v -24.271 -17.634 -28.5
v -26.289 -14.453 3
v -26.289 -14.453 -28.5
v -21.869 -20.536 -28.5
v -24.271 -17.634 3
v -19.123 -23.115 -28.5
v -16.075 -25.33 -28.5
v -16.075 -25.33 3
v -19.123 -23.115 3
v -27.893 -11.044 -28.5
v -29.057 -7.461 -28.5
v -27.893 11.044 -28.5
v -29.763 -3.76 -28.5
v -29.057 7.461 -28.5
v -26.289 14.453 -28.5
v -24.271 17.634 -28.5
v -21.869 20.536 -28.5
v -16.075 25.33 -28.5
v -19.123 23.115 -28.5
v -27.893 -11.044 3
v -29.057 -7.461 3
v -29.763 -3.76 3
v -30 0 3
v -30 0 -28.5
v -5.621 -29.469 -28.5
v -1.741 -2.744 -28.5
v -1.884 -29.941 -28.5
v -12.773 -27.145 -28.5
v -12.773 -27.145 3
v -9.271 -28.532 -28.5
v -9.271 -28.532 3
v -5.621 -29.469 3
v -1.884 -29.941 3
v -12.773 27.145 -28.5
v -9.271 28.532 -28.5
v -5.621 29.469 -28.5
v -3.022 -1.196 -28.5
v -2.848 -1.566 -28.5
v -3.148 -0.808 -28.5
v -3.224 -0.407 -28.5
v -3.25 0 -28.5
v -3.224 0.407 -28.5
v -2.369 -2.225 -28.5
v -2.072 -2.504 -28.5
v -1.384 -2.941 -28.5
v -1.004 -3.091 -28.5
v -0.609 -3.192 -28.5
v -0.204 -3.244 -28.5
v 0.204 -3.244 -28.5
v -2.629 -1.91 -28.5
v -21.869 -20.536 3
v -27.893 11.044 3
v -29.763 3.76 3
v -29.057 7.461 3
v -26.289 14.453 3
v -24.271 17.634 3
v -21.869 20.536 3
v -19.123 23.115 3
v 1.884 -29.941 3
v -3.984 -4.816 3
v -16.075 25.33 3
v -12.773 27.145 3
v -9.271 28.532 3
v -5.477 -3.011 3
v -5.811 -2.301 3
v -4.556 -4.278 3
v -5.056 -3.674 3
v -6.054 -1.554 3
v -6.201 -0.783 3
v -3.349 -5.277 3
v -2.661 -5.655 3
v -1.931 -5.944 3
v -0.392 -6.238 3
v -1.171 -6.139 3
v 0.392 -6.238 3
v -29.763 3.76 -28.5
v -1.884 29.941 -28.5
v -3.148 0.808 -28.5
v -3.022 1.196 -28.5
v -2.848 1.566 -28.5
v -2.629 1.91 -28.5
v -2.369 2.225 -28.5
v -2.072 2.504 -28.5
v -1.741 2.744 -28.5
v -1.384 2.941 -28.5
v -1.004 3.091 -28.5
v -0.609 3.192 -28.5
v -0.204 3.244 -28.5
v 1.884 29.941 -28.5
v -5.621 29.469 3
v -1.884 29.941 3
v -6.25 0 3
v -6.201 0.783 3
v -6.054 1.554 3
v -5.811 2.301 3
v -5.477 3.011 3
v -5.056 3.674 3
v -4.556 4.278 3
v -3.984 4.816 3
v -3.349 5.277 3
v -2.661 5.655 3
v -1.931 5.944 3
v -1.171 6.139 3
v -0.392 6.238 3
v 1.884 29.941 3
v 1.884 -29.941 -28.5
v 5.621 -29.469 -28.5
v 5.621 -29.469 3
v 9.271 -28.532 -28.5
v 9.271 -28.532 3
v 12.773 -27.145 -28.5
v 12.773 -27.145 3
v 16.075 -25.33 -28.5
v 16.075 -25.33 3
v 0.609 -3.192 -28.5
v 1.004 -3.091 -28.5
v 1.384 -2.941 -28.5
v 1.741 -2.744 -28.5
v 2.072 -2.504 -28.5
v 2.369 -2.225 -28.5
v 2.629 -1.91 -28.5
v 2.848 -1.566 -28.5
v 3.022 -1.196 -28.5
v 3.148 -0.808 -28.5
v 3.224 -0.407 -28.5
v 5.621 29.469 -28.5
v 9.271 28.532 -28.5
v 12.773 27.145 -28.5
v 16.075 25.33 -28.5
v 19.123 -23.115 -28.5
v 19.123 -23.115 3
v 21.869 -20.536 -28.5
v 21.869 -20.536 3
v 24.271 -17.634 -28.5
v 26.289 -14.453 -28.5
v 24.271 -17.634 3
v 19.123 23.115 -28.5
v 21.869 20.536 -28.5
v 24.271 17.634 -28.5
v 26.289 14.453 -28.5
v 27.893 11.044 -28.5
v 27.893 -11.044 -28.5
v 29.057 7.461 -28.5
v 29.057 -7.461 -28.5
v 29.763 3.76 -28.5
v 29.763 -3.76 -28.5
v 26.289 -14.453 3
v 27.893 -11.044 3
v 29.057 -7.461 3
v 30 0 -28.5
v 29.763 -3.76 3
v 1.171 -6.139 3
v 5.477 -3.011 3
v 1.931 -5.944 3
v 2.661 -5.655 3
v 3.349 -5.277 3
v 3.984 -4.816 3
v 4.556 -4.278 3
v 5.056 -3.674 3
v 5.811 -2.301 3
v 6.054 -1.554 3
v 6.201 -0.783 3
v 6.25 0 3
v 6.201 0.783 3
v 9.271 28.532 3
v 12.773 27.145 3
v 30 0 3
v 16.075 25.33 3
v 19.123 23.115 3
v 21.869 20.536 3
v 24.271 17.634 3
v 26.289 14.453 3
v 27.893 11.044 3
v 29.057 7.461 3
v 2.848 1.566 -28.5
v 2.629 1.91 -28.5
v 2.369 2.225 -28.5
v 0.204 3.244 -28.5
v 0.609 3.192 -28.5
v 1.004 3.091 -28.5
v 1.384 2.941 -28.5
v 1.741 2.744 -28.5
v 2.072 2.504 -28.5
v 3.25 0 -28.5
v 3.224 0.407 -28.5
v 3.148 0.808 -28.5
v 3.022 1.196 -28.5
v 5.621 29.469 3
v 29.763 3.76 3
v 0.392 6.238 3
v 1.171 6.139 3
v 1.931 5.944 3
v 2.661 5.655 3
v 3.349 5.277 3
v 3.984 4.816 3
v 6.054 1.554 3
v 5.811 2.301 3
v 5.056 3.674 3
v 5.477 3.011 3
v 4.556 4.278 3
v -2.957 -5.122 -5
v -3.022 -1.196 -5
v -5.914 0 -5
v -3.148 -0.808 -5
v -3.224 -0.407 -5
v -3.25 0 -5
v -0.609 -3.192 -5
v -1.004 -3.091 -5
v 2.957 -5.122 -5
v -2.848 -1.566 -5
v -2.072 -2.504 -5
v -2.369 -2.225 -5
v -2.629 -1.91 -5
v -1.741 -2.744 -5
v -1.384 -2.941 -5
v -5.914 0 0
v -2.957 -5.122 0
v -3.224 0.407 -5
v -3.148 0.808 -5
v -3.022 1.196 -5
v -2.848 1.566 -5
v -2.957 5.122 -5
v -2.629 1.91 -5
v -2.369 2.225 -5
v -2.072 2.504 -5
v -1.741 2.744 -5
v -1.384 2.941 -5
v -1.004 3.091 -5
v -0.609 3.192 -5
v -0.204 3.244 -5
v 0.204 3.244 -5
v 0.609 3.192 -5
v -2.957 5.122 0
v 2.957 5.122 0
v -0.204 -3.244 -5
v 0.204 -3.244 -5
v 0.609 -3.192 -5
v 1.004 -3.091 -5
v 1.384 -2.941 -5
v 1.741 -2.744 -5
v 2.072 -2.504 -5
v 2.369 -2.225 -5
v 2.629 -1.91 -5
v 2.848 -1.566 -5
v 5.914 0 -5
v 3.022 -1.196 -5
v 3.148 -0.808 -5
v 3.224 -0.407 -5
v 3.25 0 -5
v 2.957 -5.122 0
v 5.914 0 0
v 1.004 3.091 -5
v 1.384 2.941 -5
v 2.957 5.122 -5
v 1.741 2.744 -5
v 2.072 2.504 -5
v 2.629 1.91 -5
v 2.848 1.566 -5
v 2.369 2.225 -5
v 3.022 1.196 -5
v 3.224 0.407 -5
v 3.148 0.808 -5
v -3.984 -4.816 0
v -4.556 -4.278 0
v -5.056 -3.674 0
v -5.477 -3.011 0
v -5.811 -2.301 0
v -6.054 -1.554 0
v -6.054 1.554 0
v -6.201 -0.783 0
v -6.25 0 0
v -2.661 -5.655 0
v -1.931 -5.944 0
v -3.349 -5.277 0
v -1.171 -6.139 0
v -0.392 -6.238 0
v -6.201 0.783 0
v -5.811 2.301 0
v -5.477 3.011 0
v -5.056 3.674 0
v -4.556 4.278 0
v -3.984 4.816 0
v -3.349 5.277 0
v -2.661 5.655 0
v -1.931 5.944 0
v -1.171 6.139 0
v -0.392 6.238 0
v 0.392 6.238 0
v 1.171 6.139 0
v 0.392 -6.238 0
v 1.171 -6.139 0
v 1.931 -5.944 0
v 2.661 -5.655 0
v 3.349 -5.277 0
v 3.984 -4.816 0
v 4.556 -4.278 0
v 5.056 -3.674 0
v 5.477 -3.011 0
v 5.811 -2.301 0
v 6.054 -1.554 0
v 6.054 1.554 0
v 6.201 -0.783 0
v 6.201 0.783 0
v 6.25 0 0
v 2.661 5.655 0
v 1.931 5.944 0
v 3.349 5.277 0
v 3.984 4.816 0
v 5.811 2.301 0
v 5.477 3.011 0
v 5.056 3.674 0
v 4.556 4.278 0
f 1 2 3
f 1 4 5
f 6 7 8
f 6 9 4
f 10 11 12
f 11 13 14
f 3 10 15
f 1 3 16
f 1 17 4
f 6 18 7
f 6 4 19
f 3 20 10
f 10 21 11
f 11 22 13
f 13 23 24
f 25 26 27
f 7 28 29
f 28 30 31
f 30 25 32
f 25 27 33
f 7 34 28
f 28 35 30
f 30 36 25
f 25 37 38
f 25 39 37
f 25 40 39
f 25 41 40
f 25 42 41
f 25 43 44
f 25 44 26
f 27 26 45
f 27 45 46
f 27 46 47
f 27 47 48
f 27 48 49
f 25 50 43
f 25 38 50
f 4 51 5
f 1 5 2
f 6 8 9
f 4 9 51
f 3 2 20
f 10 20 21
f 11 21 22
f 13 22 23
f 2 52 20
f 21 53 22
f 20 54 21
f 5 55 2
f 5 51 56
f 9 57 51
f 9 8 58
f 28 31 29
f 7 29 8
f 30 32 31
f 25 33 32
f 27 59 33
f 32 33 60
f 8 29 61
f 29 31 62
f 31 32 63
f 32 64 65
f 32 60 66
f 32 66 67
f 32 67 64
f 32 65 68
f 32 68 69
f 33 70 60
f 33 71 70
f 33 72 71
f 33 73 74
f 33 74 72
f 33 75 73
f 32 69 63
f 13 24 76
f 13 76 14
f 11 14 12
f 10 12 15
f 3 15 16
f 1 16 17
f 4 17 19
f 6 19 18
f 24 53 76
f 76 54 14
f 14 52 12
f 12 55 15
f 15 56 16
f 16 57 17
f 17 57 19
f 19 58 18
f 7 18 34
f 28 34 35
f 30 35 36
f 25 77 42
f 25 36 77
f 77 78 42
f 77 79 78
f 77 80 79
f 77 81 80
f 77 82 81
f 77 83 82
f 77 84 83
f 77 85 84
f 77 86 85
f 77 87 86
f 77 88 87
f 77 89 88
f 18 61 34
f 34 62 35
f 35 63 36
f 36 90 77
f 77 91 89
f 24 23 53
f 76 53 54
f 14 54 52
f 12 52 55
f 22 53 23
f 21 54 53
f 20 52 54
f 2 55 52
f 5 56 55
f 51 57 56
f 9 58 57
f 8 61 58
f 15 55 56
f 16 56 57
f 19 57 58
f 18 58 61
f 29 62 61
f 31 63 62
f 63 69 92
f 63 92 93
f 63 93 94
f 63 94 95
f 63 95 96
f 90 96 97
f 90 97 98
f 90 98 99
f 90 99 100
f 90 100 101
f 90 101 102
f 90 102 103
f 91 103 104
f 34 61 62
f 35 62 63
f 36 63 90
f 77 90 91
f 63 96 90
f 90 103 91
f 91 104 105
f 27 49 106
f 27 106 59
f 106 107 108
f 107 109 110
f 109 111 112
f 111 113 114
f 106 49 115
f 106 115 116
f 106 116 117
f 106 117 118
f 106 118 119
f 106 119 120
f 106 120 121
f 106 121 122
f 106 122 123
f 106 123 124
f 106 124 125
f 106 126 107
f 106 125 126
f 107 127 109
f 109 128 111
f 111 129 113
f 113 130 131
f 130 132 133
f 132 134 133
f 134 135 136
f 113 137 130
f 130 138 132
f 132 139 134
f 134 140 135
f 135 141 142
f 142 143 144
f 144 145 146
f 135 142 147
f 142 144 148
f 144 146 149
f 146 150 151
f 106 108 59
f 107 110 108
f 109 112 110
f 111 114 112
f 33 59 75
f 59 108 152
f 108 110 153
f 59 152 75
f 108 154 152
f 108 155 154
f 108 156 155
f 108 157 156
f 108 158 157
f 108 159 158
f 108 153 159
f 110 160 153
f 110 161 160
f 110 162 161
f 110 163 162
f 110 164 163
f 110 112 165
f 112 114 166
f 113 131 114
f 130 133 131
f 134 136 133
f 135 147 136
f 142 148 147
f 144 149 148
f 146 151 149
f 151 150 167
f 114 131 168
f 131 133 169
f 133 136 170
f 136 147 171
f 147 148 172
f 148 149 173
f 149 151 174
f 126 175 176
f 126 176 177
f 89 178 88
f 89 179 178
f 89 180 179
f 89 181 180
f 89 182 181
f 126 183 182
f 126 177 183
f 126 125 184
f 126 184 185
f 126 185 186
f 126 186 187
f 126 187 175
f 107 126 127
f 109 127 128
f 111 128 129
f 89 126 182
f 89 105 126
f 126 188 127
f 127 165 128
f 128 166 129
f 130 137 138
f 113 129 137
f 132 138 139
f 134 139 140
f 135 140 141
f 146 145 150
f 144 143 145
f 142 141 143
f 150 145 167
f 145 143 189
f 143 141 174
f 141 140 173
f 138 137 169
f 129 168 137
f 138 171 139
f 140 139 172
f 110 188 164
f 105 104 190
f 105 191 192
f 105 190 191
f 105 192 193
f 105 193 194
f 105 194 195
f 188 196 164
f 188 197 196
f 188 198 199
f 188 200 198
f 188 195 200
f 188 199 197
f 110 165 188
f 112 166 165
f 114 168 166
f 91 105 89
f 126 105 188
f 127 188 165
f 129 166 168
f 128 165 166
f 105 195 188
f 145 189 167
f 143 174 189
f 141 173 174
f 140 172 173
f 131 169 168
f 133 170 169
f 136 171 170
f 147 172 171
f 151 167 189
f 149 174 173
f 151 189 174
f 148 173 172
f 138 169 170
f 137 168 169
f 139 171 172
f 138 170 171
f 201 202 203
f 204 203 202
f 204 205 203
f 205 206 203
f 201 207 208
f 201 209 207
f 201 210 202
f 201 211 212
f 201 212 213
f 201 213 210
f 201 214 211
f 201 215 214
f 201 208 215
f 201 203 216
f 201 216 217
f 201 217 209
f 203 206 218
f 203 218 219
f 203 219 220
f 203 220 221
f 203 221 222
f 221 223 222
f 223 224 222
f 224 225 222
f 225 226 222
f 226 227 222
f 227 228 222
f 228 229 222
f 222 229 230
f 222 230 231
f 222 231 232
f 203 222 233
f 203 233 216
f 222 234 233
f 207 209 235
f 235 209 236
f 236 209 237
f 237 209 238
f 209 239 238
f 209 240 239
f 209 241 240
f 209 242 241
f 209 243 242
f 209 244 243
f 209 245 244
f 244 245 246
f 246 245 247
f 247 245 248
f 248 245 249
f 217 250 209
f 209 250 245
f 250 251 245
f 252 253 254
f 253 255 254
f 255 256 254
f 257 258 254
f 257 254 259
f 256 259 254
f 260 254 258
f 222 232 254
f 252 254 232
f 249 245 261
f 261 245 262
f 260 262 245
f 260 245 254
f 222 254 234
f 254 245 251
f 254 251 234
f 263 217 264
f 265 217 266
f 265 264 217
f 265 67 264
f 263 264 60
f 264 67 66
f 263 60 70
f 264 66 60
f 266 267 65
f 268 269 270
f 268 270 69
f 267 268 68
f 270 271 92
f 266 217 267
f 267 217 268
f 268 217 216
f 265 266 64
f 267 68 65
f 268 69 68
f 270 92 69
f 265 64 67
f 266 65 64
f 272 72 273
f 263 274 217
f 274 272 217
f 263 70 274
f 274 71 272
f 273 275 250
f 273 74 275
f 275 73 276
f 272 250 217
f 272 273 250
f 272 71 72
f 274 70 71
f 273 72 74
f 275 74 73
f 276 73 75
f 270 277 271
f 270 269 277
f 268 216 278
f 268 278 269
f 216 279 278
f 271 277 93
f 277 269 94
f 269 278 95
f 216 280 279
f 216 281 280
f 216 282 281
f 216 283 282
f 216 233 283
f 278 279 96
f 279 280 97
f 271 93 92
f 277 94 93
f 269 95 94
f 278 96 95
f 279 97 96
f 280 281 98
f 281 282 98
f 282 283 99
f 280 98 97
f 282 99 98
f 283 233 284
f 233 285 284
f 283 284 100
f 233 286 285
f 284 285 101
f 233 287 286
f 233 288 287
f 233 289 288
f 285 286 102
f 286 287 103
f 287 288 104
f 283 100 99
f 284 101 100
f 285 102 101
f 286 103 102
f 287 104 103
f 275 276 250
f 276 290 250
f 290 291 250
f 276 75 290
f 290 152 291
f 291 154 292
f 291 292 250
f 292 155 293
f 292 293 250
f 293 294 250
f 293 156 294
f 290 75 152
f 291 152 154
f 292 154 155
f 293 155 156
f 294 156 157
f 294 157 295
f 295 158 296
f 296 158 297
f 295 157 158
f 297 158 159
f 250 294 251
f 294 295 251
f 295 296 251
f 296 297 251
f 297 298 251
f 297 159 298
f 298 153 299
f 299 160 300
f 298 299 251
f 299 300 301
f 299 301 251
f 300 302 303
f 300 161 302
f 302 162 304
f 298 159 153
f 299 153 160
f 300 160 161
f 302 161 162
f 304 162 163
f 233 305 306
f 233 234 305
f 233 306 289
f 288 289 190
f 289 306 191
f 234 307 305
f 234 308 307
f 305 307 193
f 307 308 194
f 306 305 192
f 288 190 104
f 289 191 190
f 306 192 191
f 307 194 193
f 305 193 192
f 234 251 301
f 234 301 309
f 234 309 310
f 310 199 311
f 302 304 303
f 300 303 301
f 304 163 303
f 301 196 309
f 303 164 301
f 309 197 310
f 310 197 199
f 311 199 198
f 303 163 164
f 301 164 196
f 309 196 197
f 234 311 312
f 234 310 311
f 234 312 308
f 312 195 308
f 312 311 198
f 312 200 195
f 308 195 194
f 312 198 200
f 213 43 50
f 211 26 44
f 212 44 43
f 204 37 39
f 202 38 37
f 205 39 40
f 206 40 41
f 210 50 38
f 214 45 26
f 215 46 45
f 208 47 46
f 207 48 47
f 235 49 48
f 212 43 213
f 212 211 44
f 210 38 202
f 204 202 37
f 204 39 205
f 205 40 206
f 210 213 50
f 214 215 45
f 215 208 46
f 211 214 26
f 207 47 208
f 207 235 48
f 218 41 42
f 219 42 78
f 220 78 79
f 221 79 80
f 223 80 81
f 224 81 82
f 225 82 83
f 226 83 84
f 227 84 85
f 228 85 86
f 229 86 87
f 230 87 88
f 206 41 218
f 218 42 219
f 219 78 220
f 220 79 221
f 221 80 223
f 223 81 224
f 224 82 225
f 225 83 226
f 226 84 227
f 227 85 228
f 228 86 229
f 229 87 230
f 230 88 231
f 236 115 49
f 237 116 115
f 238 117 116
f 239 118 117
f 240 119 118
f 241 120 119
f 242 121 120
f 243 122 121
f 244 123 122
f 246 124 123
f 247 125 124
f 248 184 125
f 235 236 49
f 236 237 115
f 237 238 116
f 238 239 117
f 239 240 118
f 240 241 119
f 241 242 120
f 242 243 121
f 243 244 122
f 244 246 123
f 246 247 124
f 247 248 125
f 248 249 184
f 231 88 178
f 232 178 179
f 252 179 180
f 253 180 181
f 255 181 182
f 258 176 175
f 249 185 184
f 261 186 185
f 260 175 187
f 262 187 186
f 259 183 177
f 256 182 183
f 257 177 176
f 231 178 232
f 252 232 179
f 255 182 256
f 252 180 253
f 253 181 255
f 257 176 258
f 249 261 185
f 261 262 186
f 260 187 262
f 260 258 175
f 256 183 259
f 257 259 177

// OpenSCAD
$fn = 50;

difference() {
	union() {
		translate(v = [0, 0, -28.5]) {
			cylinder(h = 31.5, r = 30.0);
		}
		#translate(v = [0, 0, -30.0]) {
			cylinder(h = 30, r = 2.875);
		}
	}
	union() {
		translate(v = [0, 0, 0]) {
			rotate(a = [0, 0, 0]) {
				difference() {
					union() {
						translate(v = [0, 0, -5]) {
							linear_extrude(height = 5) {
								polygon(points = [[5.914249999999999, 0.0], [2.957125, 5.1218907443321156], [-2.9571249999999982, 5.1218907443321156], [-5.914249999999999, 7.242867331857232e-16], [-2.9571250000000022, -5.121890744332115], [2.9571249999999956, -5.121890744332118]]);
							}
						}
					}
					union();
				}
			}
		}
		#cylinder(h = 3, r = 6.25);
		#translate(v = [0, 0, -100.0]) {
			cylinder(h = 200, r = 3.25);
		}
	}
}
